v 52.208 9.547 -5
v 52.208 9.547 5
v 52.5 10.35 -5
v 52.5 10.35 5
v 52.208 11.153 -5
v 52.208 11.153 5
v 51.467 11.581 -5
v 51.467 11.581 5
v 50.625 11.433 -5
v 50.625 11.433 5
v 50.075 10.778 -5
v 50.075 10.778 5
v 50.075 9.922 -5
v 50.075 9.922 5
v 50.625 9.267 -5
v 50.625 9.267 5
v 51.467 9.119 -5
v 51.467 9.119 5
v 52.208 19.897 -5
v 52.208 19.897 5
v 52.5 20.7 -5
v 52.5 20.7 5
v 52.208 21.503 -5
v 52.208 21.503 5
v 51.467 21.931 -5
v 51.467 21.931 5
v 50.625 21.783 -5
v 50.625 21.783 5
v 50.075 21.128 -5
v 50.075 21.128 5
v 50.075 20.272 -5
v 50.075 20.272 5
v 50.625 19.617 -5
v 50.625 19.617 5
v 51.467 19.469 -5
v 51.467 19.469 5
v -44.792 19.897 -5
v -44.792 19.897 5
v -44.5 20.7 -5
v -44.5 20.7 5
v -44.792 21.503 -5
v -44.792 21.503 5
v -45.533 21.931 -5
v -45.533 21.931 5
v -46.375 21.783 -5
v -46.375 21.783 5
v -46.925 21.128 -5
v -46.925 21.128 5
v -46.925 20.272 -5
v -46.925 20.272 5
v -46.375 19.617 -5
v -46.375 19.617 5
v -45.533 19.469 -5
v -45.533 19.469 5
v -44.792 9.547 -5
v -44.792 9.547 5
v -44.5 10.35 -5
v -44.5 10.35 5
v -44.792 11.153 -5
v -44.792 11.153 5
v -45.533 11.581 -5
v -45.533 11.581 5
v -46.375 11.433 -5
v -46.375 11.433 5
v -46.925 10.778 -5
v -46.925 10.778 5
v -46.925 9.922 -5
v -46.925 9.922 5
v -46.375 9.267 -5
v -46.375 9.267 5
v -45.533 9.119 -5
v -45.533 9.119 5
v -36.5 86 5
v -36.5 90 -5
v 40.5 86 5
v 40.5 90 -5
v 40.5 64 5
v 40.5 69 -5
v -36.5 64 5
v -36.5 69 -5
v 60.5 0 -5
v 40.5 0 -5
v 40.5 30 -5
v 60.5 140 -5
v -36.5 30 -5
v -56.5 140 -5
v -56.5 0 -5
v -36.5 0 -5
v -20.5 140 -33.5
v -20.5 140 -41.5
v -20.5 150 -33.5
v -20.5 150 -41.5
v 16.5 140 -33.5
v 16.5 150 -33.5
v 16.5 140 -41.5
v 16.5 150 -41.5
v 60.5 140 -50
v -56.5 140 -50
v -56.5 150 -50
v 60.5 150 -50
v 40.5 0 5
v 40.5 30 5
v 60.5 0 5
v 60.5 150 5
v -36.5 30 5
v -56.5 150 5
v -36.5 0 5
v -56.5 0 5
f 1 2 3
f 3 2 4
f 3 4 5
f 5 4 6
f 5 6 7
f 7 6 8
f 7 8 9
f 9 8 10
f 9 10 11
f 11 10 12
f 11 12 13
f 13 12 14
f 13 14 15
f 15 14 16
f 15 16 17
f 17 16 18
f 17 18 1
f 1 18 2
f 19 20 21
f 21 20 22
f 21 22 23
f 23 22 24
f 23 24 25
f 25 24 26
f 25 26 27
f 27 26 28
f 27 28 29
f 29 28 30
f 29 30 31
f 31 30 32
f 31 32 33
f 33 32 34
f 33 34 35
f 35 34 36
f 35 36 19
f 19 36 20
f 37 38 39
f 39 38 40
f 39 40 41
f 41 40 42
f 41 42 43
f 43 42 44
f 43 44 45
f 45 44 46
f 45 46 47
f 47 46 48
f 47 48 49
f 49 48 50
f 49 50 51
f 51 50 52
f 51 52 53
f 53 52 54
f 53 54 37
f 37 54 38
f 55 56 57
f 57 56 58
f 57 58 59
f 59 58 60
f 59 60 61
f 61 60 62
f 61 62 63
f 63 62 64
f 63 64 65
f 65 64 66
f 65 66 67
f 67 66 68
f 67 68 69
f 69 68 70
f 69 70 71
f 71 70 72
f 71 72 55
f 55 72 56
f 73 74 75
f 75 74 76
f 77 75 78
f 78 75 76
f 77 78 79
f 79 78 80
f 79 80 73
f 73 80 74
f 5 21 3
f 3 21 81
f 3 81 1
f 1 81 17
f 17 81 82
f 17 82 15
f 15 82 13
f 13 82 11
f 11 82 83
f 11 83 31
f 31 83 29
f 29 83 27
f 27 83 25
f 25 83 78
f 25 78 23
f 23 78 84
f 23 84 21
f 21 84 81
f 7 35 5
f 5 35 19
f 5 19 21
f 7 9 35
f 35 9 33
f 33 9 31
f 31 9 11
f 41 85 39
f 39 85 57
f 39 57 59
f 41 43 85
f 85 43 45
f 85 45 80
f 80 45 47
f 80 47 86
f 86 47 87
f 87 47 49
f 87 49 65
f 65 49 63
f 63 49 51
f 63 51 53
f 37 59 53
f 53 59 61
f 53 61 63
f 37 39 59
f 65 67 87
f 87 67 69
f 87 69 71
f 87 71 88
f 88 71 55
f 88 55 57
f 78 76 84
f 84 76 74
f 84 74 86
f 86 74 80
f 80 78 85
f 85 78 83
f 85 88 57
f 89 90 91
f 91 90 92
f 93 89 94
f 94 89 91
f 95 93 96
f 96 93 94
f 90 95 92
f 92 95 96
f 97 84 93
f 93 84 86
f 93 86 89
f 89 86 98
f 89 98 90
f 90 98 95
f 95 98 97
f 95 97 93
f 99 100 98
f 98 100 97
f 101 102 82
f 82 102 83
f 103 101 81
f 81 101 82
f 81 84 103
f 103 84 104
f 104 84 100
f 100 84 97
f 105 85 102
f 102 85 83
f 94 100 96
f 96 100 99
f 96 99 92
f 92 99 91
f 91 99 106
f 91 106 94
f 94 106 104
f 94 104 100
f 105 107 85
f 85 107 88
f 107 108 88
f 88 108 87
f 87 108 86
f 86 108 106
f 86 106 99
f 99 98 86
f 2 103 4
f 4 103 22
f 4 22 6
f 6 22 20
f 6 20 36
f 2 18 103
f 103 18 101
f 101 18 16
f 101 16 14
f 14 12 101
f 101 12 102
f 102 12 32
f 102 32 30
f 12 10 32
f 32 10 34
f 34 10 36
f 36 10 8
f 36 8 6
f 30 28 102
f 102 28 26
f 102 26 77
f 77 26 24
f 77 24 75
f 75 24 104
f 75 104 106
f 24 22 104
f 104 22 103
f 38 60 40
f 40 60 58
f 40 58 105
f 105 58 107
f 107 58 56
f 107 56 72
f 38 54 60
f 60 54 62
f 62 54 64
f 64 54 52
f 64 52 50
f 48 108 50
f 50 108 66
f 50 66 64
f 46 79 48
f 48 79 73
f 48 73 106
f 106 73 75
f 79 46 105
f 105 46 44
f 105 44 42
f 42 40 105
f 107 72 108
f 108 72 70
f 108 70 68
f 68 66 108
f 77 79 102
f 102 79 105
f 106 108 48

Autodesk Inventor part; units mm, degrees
ref_plane "YZ Plane" through (0, 0, 0) normal (1, 0, 0) x (0, 1, 0)
ref_plane "XZ Plane" through (0, 0, 0) normal (0, 1, 0) x (-1, 0, 0)
ref_plane "XY Plane" through (0, 0, 0) normal (0, 0, 1) x (1, 0, 0)
sketch "草圖1" plane through (0, 0, 0) normal (0, 0, 1) x (1, 0, 0)
  line L0 (-56.5, 30) -> (-36.5, 30)
  line L1 (-36.5, 30) -> (-36.5, 0)
  line L2 (-36.5, 0) -> (-56.5, 0)
  line L3 (-56.5, 0) -> (-56.5, 30)
  point P0 (0, 0)
  dimension "d0" = 30
  dimension "d1" = 20
  dimension "d2" = 36.5
extrude "擠出1" add sketch "草圖1" along normal blind 5
sketch "草圖4" plane through (-56.5, 30, 0) normal (0, 1, 0) x (1, 0, 0)
  line L0 (0, 0) -> (58.5, 0)
  line L1 (58.5, 0) -> (58.5, -5)
  line L2 (58.5, -5) -> (0, -5)
  line L3 (0, -5) -> (0, 0)
  line L4 (20, -5) -> (0, -5) projected
  point P0 (56.5, 0)
  point P1 (18.5, -5)
  point P2 (3, -5)
  dimension "d20" = 5
  dimension "d21" = 0
  dimension "d87" = 58.5
extrude "擠出4" add sketch "草圖4" along normal blind 120
mirror "鏡射1" about plane through (2, 30, 5) normal (1, 0, 0)
sketch "草圖5" plane through (0, 0, 0) normal (0, 0, -1) x (-1, 0, 0)
  line L0 (56.5, 150) -> (-60.5, 150) projected
  line L1 (-60.5, 150) -> (56.5, 150)
  line L2 (56.5, 150) -> (56.5, 140)
  line L3 (56.5, 140) -> (-60.5, 140)
  line L4 (-60.5, 140) -> (-60.5, 150)
  point P0 (0, 0)
  dimension "d24" = 10
  dimension "d25" = 117
extrude "擠出5" add sketch "草圖5" along normal blind 50
sketch "草圖6" plane through (-56.5, 150, 0) normal (0, 1, 0) x (1, 0, 0)
  line L0 (36, 33.5) -> (73, 33.5)
  line L1 (73, 33.5) -> (73, 41.5)
  line L2 (73, 41.5) -> (36, 41.5)
  line L3 (36, 41.5) -> (36, 33.5)
  line L4 (0, -5) -> (117, -5) projected
  point P0 (56.5, 0)
  dimension "d28" = 37
  dimension "d29" = 16.5
  dimension "d30" = 8
  dimension "d31" = 38.5
extrude "擠出6" cut sketch "草圖6" against normal up to next
sketch "草圖7" plane through (0, 0, 0) normal (0, 0, -1) x (-1, 0, 0)
  line L0 (56.5, 140) -> (-60.5, 140) projected
  line L1 (-60.5, 0) -> (-60.5, 140) projected
  line L2 (-40.5, 0) -> (-60.5, 0) projected
  line L3 (-40.5, 30) -> (-40.5, 0) projected
  line L4 (36.5, 30) -> (-40.5, 30) projected
  line L5 (36.5, 30) -> (36.5, 0) projected
  line L6 (36.5, 0) -> (56.5, 0) projected
  line L7 (56.5, 0) -> (56.5, 140) projected
  point P0 (0, 0)
extrude "擠出7" add sketch "草圖7" along normal blind 5
sketch "草圖11" plane through (0, 0, 5) normal (0, 0, 1) x (1, 0, 0)
  line L0 (-36.5, 86) -> (40.5, 86)
  line L1 (40.5, 86) -> (40.5, 64)
  line L2 (40.5, 64) -> (-36.5, 64)
  line L3 (-36.5, 64) -> (-36.5, 86)
  line L4 (40.5, 0) -> (40.5, 30) projected
  line L5 (-36.5, 0) -> (-36.5, 30) projected
  line L6 (40.5, 30) -> (-36.5, 30) projected
  line L7 (-56.5, 150) -> (60.5, 150) projected
  point P0 (0, 0)
  dimension "d64" = 0
  dimension "d65" = 0
  dimension "d66" = 34
  dimension "d67" = 64
sketch "草圖12" plane through (0, 0, -5) normal (0, 0, -1) x (-1, 0, 0)
  line L0 (-40.5, 90) -> (36.5, 90)
  line L1 (36.5, 90) -> (36.5, 69)
  line L2 (36.5, 69) -> (-40.5, 69)
  line L3 (-40.5, 69) -> (-40.5, 90)
  line L4 (36.5, 30) -> (36.5, 0) projected
  line L5 (-40.5, 0) -> (-40.5, 30) projected
  line L6 (-60.5, 140) -> (56.5, 140) projected
  line L7 (-40.5, 30) -> (36.5, 30) projected
  point P0 (0, 0)
  dimension "d68" = 0
  dimension "d69" = 0
  dimension "d70" = 50
  dimension "d71" = 39
loft "斷面混成2" cut profiles "草圖11", "草圖12"
sketch "草圖13" plane through (0, 0, 5) normal (0, 0, 1) x (1, 0, 0)
  circle A0 centre (-45.75, 10.35) radius 1.25
  line L0 (-56.5, 0) -> (-56.5, 150) projected
  line L1 (-56.5, 0) -> (-36.5, 0) projected
  circle A1 centre (-45.75, 20.7) radius 1.25
  circle A2 centre (51.25, 10.35) radius 1.25
  circle A3 centre (51.25, 20.7) radius 1.25
  line L2 (40.5, 0) -> (40.5, 30) projected
  line L3 (60.5, 0) -> (40.5, 0) projected
  point P0 (0, 0)
  dimension "d76" = 2.5
  dimension "d77" = 10.75
  dimension "d78" = 10.35
  dimension "d79" = 10.35
  dimension "d80" = 10.75
  dimension "d81" = 10.75
  dimension "d82" = 10.75
  dimension "d83" = 10.35
  dimension "d84" = 10.35
extrude "擠出10" cut sketch "草圖13" against normal up to surface (10 mm away)
properties part number "0724"
